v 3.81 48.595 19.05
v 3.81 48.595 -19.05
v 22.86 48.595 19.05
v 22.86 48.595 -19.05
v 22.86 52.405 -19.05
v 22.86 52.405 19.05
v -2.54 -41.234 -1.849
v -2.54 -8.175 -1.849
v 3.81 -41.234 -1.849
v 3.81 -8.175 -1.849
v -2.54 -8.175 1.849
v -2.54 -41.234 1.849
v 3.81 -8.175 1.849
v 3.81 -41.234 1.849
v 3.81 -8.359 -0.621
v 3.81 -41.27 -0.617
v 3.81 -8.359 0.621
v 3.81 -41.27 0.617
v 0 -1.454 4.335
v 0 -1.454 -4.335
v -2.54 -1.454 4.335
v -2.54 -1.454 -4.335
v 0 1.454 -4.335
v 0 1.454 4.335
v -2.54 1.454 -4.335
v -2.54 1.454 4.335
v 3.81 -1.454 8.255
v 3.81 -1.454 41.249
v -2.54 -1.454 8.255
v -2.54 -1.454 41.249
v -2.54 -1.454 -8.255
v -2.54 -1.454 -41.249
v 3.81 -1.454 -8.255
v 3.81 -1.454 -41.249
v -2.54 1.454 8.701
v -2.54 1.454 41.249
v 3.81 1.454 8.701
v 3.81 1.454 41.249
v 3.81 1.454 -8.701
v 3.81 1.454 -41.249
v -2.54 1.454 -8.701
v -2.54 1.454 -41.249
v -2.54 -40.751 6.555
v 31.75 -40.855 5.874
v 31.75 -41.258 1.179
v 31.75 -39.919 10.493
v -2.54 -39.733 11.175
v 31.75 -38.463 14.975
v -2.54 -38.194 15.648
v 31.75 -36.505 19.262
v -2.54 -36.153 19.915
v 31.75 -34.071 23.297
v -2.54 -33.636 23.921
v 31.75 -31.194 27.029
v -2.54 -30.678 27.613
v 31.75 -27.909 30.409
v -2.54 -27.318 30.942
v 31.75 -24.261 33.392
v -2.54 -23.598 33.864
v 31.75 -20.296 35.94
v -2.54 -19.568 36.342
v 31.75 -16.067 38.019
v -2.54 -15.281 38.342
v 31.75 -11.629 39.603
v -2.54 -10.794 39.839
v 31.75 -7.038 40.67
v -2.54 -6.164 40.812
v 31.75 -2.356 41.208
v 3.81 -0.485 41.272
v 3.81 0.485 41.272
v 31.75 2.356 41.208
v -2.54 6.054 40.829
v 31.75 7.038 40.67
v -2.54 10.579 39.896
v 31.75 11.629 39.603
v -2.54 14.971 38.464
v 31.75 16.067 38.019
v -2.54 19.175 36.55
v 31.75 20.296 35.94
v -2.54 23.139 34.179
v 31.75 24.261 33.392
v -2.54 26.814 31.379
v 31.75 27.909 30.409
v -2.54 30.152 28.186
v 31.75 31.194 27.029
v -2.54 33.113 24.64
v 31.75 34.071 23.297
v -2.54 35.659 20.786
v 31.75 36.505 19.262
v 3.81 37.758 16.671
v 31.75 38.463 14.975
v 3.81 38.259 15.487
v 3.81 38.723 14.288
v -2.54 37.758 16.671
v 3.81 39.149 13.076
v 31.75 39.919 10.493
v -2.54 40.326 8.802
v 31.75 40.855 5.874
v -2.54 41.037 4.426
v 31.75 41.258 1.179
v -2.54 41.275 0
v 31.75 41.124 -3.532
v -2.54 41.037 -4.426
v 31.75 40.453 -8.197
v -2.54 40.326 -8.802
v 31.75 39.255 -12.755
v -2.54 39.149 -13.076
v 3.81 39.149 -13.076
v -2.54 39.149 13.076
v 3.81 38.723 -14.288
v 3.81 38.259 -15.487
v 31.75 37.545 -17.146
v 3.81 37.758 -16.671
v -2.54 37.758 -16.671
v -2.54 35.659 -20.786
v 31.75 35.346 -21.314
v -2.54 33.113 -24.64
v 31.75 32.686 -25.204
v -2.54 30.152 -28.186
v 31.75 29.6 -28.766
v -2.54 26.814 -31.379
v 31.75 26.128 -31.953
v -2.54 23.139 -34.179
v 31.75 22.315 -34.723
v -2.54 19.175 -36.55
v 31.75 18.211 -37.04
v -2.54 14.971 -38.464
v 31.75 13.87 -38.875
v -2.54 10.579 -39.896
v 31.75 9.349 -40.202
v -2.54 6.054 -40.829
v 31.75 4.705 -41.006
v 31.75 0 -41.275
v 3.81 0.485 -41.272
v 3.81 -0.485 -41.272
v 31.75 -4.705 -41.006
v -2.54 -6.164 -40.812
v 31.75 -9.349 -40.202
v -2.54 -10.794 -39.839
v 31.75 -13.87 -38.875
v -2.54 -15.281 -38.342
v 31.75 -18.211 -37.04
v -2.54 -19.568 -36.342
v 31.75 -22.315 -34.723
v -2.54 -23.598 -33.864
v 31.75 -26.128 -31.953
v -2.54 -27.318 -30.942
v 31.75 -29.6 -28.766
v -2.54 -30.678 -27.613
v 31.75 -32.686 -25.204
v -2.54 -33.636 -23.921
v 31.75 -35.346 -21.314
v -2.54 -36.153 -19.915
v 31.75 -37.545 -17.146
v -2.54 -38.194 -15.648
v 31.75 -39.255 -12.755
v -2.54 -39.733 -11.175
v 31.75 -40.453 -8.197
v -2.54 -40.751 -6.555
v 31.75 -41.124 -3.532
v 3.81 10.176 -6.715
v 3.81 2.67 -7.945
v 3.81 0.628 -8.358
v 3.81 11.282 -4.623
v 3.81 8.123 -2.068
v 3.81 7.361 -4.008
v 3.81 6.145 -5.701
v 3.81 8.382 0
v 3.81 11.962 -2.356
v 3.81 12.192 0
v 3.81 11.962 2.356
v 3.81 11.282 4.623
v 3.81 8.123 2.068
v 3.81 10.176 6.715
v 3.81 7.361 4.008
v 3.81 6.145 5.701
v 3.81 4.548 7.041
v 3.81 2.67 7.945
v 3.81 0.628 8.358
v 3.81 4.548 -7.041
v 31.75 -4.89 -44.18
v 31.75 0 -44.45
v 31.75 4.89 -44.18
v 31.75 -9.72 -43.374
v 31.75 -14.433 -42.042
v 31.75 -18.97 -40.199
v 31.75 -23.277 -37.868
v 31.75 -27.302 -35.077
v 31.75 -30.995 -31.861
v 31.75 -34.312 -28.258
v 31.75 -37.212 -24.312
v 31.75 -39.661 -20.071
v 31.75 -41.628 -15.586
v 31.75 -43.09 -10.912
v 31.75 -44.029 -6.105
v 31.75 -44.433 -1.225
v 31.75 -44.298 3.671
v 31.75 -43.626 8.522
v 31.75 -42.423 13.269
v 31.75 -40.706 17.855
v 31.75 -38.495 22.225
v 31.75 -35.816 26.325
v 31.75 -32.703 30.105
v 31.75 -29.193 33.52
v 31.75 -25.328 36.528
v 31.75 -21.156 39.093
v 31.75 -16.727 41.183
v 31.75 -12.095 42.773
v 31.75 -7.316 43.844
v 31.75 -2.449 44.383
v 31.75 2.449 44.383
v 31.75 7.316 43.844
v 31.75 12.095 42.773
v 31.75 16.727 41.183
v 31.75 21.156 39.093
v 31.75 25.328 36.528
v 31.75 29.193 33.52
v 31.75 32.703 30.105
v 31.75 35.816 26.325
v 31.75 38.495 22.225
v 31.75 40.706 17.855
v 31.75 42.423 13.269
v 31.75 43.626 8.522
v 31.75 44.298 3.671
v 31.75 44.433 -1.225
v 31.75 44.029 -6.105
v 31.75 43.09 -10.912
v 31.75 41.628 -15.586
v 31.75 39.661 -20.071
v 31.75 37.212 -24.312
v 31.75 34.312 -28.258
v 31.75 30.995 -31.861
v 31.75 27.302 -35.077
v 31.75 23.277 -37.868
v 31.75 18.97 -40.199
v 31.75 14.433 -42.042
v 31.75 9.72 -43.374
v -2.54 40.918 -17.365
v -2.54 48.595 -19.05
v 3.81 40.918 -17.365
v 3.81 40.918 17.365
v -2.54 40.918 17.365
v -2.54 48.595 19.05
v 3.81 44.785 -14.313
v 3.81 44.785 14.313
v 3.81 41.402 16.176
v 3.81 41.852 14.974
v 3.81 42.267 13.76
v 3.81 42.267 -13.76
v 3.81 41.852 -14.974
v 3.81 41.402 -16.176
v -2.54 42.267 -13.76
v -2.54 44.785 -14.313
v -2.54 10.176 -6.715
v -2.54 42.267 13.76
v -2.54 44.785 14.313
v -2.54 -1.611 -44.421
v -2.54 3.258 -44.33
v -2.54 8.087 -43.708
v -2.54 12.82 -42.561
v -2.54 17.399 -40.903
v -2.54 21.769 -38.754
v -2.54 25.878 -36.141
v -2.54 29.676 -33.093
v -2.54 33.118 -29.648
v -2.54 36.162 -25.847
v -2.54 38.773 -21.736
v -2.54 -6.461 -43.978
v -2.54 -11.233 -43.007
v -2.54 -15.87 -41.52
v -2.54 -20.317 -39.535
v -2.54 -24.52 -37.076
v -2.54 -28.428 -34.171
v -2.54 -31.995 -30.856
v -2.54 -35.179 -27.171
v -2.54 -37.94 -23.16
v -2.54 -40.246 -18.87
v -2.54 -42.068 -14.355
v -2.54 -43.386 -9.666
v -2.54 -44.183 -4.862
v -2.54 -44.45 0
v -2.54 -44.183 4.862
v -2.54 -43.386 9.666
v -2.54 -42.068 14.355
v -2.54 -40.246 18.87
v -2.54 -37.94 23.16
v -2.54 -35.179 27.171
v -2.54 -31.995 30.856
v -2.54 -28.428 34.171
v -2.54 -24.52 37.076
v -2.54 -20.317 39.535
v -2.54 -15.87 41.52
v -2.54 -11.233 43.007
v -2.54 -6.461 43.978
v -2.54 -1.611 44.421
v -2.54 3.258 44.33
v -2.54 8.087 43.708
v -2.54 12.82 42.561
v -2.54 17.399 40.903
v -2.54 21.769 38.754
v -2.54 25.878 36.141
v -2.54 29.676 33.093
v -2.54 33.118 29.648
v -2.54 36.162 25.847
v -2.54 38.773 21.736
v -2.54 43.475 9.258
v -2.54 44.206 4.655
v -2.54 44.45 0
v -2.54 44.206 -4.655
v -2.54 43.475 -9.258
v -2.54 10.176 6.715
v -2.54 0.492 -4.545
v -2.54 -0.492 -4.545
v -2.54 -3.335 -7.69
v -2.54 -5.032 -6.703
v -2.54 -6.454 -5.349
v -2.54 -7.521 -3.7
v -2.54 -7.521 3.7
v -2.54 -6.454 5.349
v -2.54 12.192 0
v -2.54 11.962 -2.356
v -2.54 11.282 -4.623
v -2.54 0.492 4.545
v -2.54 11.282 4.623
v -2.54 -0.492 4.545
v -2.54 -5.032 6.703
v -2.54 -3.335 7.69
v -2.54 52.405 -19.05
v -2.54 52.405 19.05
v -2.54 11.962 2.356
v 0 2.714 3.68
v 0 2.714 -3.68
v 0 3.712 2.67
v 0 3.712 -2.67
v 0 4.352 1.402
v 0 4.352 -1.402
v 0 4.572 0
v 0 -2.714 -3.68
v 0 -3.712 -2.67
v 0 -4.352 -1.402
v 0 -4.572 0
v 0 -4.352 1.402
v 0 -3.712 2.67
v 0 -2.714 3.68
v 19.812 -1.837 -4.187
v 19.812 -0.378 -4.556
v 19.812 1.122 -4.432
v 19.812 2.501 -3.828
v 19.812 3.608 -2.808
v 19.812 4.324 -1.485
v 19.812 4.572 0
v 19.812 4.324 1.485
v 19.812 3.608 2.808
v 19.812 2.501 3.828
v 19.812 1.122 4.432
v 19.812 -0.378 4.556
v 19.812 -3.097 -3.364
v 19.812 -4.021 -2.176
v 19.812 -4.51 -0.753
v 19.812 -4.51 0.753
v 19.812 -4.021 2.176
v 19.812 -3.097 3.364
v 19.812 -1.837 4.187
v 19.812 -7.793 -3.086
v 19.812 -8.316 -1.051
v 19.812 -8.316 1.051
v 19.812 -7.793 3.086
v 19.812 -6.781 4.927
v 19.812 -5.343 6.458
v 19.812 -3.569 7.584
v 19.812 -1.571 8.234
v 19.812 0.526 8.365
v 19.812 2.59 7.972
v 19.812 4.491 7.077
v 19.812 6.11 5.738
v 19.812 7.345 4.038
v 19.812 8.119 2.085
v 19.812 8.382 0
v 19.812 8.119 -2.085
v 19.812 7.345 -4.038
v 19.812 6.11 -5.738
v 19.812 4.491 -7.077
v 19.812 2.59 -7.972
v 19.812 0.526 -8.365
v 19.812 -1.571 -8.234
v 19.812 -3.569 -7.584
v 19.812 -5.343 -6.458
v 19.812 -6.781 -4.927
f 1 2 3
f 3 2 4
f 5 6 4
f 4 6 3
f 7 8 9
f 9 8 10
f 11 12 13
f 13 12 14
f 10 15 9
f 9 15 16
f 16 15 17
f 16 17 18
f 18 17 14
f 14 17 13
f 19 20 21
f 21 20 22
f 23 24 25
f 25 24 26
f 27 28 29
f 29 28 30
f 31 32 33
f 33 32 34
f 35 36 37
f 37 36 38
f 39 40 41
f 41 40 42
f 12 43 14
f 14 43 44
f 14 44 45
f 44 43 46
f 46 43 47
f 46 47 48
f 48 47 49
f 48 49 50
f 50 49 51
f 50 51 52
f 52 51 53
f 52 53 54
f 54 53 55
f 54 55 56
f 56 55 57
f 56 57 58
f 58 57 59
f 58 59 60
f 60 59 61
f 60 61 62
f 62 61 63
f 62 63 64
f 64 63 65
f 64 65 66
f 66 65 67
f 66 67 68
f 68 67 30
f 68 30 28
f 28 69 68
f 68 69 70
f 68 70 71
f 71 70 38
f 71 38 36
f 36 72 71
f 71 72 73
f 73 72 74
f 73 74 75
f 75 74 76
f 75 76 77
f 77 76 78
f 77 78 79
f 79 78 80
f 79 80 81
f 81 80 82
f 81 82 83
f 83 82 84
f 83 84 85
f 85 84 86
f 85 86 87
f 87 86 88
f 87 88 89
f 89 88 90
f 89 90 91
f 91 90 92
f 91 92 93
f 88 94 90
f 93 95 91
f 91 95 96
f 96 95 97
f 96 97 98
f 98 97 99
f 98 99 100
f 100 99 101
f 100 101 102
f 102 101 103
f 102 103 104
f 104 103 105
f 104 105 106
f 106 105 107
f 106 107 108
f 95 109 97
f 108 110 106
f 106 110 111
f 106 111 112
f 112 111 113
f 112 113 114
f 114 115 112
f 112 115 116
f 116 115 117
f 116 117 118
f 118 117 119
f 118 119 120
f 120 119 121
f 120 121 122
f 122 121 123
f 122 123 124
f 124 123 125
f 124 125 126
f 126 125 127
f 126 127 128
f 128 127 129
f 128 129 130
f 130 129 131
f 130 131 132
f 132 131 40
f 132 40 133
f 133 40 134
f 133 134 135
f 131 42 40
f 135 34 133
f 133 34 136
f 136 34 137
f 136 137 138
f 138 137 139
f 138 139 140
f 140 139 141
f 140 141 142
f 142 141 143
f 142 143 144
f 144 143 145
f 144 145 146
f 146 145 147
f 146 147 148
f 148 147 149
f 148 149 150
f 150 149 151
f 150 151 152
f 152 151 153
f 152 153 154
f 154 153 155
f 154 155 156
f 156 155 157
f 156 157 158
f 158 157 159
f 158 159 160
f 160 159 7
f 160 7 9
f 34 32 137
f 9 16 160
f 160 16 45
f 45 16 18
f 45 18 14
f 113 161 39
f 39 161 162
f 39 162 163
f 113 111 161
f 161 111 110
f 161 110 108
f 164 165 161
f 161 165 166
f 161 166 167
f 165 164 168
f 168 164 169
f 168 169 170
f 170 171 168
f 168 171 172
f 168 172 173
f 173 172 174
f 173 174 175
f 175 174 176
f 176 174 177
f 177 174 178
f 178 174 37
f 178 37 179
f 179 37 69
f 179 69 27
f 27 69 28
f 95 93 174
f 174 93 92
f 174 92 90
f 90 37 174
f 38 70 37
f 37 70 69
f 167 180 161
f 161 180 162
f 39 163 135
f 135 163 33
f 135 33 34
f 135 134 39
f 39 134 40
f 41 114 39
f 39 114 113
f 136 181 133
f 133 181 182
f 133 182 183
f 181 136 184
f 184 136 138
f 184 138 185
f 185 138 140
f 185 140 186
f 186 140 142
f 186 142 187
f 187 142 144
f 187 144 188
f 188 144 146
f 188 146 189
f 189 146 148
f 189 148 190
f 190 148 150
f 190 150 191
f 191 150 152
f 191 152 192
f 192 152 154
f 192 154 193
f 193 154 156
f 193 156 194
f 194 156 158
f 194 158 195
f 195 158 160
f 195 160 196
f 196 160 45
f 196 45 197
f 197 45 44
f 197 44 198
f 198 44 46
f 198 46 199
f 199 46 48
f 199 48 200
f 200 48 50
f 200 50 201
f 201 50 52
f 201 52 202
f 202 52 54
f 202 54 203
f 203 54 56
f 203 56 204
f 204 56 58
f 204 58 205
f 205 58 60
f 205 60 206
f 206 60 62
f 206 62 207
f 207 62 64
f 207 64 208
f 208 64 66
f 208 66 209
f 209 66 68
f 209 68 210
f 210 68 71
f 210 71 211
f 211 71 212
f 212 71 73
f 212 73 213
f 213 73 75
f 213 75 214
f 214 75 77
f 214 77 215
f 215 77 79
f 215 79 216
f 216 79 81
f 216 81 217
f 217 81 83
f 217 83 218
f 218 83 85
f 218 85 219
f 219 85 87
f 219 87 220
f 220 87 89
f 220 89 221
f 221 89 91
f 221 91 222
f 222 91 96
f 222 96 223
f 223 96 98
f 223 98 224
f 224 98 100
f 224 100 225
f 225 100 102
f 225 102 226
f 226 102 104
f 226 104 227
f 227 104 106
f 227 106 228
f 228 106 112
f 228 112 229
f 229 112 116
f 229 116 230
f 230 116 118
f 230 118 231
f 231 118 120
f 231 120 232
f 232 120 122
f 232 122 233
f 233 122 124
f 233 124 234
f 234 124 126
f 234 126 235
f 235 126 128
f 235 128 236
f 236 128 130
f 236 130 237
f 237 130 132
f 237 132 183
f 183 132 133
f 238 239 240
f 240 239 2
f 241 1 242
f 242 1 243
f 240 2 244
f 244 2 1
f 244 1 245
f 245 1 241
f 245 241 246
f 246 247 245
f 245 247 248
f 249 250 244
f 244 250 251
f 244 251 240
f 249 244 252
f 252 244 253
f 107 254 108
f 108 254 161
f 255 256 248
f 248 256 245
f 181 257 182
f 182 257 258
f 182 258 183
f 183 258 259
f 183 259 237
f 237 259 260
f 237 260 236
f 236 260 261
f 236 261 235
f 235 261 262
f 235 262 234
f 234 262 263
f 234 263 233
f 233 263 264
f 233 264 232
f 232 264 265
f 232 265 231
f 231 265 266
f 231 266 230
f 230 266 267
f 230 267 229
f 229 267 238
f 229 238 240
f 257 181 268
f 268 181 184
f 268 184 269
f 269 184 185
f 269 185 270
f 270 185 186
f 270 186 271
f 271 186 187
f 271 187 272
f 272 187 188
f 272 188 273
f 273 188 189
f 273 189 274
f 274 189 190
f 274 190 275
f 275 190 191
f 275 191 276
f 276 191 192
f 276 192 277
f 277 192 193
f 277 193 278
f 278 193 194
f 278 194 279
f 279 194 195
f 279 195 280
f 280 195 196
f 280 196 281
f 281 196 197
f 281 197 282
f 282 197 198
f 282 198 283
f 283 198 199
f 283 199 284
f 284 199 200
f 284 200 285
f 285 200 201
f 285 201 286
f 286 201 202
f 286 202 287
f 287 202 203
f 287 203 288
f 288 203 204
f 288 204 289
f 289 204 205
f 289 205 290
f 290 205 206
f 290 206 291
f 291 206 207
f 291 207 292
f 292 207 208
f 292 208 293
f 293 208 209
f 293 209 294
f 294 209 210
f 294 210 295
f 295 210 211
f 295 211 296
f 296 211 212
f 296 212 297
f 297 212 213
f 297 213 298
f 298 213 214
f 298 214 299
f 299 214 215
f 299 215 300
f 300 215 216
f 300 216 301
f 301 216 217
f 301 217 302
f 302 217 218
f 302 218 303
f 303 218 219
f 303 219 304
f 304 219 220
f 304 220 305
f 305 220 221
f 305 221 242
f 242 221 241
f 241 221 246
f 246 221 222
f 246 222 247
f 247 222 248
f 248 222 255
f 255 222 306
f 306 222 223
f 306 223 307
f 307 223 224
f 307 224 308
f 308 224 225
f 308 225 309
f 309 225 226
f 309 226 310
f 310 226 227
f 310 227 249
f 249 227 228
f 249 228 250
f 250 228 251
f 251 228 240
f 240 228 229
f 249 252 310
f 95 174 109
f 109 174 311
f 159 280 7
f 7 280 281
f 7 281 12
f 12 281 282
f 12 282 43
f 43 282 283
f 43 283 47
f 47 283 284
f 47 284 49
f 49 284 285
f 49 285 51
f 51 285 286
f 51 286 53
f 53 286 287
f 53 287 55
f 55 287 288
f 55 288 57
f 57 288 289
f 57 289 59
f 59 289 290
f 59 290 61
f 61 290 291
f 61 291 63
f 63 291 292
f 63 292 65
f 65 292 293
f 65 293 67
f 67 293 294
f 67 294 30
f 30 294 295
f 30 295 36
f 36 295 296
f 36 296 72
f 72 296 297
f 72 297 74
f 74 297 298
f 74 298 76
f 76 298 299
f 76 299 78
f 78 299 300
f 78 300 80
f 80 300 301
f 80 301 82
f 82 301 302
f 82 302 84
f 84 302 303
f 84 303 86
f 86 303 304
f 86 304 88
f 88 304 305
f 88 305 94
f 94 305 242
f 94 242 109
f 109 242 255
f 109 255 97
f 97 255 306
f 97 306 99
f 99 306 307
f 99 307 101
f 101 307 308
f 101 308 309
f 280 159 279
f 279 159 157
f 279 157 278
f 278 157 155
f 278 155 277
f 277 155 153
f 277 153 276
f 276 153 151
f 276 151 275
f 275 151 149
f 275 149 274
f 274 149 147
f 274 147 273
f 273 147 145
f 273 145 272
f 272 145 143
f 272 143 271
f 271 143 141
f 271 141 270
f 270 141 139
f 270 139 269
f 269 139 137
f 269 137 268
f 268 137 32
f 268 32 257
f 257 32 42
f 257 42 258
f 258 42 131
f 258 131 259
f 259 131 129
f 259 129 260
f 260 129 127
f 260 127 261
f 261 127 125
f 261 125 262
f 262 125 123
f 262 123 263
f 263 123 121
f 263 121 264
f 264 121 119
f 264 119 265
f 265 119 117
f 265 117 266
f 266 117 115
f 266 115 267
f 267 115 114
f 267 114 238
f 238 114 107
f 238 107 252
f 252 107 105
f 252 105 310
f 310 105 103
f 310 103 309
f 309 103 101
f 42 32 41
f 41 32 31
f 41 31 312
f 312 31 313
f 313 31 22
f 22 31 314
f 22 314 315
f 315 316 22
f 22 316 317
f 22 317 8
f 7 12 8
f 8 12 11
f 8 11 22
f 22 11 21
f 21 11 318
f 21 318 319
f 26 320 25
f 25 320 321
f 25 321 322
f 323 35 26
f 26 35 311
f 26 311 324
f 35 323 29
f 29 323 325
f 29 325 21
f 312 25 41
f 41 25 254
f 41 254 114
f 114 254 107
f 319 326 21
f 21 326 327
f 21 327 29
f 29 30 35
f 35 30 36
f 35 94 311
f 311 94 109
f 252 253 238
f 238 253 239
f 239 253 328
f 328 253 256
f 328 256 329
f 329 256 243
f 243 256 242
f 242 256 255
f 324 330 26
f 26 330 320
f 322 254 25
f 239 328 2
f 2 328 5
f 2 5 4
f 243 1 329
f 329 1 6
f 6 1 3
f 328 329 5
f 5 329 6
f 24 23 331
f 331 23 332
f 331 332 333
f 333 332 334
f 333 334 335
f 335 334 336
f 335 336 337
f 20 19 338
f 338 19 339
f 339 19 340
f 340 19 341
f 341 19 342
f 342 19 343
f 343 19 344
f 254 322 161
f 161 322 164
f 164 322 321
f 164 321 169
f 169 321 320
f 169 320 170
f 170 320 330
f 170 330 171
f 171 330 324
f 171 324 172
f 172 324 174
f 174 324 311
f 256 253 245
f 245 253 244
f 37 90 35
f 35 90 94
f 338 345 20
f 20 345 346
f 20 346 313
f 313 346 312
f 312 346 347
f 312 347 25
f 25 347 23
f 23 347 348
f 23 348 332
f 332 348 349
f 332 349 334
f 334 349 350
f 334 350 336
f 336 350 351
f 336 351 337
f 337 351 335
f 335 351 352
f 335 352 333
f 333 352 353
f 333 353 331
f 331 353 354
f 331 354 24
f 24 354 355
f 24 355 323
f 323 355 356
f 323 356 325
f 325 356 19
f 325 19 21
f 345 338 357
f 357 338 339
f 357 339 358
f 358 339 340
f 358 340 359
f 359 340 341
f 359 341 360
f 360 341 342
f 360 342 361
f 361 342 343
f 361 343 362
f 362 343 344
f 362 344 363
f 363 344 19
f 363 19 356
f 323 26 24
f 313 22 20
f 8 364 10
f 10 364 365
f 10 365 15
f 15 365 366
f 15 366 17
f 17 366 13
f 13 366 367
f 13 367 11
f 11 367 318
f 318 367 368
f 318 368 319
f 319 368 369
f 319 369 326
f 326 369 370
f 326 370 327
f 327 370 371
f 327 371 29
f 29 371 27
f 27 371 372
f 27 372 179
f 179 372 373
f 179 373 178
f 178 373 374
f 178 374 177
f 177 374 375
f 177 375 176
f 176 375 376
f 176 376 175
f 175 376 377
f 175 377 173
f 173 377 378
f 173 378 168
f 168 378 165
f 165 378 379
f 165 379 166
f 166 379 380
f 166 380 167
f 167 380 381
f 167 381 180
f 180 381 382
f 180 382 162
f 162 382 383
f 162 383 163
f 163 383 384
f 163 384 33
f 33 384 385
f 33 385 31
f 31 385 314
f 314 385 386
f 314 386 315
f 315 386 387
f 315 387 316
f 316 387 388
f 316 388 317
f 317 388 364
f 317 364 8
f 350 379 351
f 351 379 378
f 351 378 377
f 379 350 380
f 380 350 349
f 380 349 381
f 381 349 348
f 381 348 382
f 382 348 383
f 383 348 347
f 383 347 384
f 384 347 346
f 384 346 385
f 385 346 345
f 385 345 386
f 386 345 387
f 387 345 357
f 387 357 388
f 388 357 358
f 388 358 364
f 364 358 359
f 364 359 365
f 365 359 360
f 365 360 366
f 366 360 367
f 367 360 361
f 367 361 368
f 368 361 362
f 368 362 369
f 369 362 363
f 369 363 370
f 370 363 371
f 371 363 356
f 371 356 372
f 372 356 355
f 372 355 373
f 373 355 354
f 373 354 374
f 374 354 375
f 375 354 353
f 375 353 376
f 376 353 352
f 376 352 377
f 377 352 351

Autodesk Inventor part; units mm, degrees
ref_plane "YZ Plane" through (0, 0, 0) normal (1, 0, 0) x (0, 1, 0)
ref_plane "XZ Plane" through (0, 0, 0) normal (0, 1, 0) x (-1, 0, 0)
ref_plane "XY Plane" through (0, 0, 0) normal (0, 0, 1) x (1, 0, 0)
sketch "Sketch1" plane through (0, 0, 0) normal (1, 0, 0) x (0, 1, 0)
  circle A0 centre (0, 0) radius 4.572
  circle A1 centre (0, 0) radius 8.382
  dimension "d0" = 9.144
  dimension "d1" = 3.81
extrude "Extrusion1" add sketch "Sketch1" along normal blind 19.812
sketch "Sketch2" plane through (0, 0, 0) normal (-1, 0, 0) x (0, 0, 1)
  circle A0 centre (0, 0) radius 8.382
  circle A1 centre (0, 0) radius 7.747
  circle A2 centre (0, 0) radius 8.382 projected
  dimension "d42" = 0
extrude "Extrusion2" add sketch "Sketch2" along normal blind 2.54 contours A0 | A1
sketch "Sketch3" plane through (-2.54, 0, 0) normal (-1, 0, 0) x (0, 0, 1)
  line L0 (19.05, 48.5955) -> (-19.05, 48.5955)
  circle A0 centre (0, 0) radius 8.382 projected
  line L1 (8.382, 0) -> (19.05, 48.5955)
  line L2 (-8.382, 0) -> (-19.05, 48.5955)
  arc A1 (8.382, 0) -> (-8.382, 0) centre (0, 0) ccw
  line L3 (-14.3129, 44.7855) -> (14.3129, 44.7855)
  line L4 (14.3129, 44.7855) -> (6.7152, 10.176)
  arc A2 (6.7152, 10.176) -> (-6.7152, 10.176) centre (0, 0) ccw
  line L5 (-6.7152, 10.176) -> (-14.3129, 44.7855)
  dimension "d6" = 38.1
  dimension "d7" = 19.05
  dimension "d8" = 3.81
extrude "Extrusion3" add sketch "Sketch3" against normal blind 6.35 contours L1 A0 L2 L0
sketch "Sketch6" plane through (-2.54, 44.7855, -14.3129) normal (0, -1, 0) x (1, 0, 0)
  line L0 (6.35, 32.4159) -> (26.9875, 32.4159) projected
  line L1 (13.4874, 32.4159) -> (13.4874, 26.0989)
  line L2 (26.9875, 32.4159) -> (26.9875, -3.9117) projected
  point P0 (2.54, 14.3129)
  dimension "d20" = 13.5001
sketch "Sketch10" plane through (0, 0, 0) normal (1, 0, 0) x (0, 0, -1)
  circle A0 centre (0, 0) radius 1.4542
  line L0 (-4.572, 1.4542) -> (4.572, 1.4542)
  line L1 (4.572, 1.4542) -> (4.572, -1.4542)
  line L2 (4.572, -1.4542) -> (-4.572, -1.4542)
  line L3 (-4.572, -1.4542) -> (-4.572, 1.4542)
  circle A1 centre (0, 0) radius 4.572 projected
  dimension "d43" = 0
  dimension "d44" = 0
extrude "Extrusion7" cut sketch "Sketch10" against normal blind 22.225 contours A0 | A0 L0 A1 L2 | A0 L2 A1 L0 | A1 L3 L0 | L0 L1 A1 | A1 L1 L2 | L2 L3 A1
sketch "Sketch13" plane through (-2.54, 48.5955, 19.05) normal (0, 1, 0) x (1, 0, 0)
  line L0 (4.6355, 36.83) -> (1.7145, 36.83)
  line L1 (1.7145, 36.83) -> (1.7145, 33.909)
  line L2 (1.7145, 33.909) -> (4.6355, 33.909)
  line L3 (4.6355, 33.909) -> (4.6355, 36.83)
  line L4 (6.35, 38.1) -> (6.35, 0) projected
  line L5 (0, 38.1) -> (6.35, 38.1) projected
  line L6 (4.6228, 4.191) -> (1.7018, 4.191)
  line L7 (1.7018, 4.191) -> (1.7018, 1.27)
  line L8 (1.7018, 1.27) -> (4.6228, 1.27)
  line L9 (4.6228, 1.27) -> (4.6228, 4.191)
  line L10 (0, 0) -> (6.35, 0) projected
  line L11 (0, 0) -> (0, 38.1) projected
  line L12 (0, 0) -> (6.35, 0) projected
  line L13 (6.35, 38.1) -> (6.35, 0) projected
  line L14 (0, 38.1) -> (6.35, 38.1) projected
  point P0 (2.54, 19.05)
  dimension "d32" = 2.921
  dimension "d33" = 2.921
  dimension "d34" = 1.7145
  dimension "d35" = 1.27
  dimension "d36" = 2.921
  dimension "d37" = 2.921
  dimension "d38" = 1.7272
  dimension "d39" = 1.27
extrude "Extrusion9" add sketch "Sketch13" along normal blind 3.81 contours L3 L2 L1 L0 | L4 L10 L11 L5 | L9 L8 L7 L6
sketch "Sketch14" plane through (0, 0, 0) normal (-1, 0, 0) x (0, 0, 1)
  arc A0 (4.3346, -1.4542) -> (4.572, 0) centre (0, 0) ccw projected
  line L0 (4.3346, -1.4542) -> (4.572, -1.4542) projected
  line L1 (4.572, -1.4542) -> (4.572, 0) projected
  arc A1 (4.572, 0) -> (4.3346, 1.4542) centre (0, 0) ccw projected
  line L2 (4.572, 0) -> (4.572, 1.4542) projected
  line L3 (4.572, 1.4542) -> (4.3346, 1.4542) projected
  arc A2 (-4.572, 0) -> (-4.3346, -1.4542) centre (0, 0) ccw projected
  line L4 (-4.572, 0) -> (-4.572, -1.4542) projected
  line L5 (-4.572, -1.4542) -> (-4.3346, -1.4542) projected
  arc A3 (-4.3346, 1.4542) -> (-4.572, 0) centre (0, 0) ccw projected
  line L6 (-4.3346, 1.4542) -> (-4.572, 1.4542) projected
  line L7 (-4.572, 1.4542) -> (-4.572, 0) projected
extrude "Extrusion10" add sketch "Sketch14" along normal blind 2.54
sketch "Sketch15" plane through (-2.54, 0, 0) normal (-1, 0, 0) x (0, 0, 1)
  circle A0 centre (0, 0) radius 41.275
  circle A1 centre (0, 0) radius 44.45
  dimension "d47" = 82.55
  dimension "d48" = 88.9
extrude "Extrusion11" add sketch "Sketch15" against normal blind 2.54
sketch "Sketch16" plane through (0, 0, 0) normal (1, 0, 0) x (0, 0, -1)
  circle A0 centre (0, 0) radius 44.45
  circle A1 centre (0, 0) radius 41.275
  dimension "d51" = 82.55
extrude "Extrusion12" add sketch "Sketch16" along normal blind 31.75
sketch "Sketch19" plane through (-2.54, 0, 0) normal (-1, 0, 0) x (0, 0, 1)
  line L0 (4.3346, 1.4542) -> (-4.3346, 1.4542) projected
  arc A0 (-16.671, 37.7585) -> (16.671, 37.7585) centre (0, 0) ccw projected
  line L1 (-4.3346, 1.4542) -> (-41.2494, 1.4542)
  line L2 (4.3346, 1.4542) -> (41.2494, 1.4542)
  circle A1 centre (0, 0) radius 8.382
  line L3 (-4.3346, -1.4542) -> (4.3346, -1.4542)
  line L4 (4.3346, 1.4542) -> (-4.3346, 1.4542)
  line L5 (-41.2494, -1.4542) -> (41.2494, -1.4542)
extrude "Extrusion14" add sketch "Sketch19" against normal blind 6.35 contours L2 A1 L5 L3 L1 L0 | L2 A0 L5 A1 | A1 L5 A0 L1
sketch "Sketch20" plane through (3.81, 0, 0) normal (1, 0, 0) x (0, 0, -1)
  arc A0 (4.3346, -1.4542) -> (4.3346, 1.4542) centre (0, 0) ccw projected
  line L0 (4.3346, 1.4542) -> (-4.3346, 1.4542) projected
  arc A1 (-4.3346, 1.4542) -> (-4.3346, -1.4542) centre (0, 0) ccw projected
  line L1 (-4.3346, -1.4542) -> (4.3346, -1.4542) projected
extrude "Extrusion15" cut sketch "Sketch20" against normal blind 6.35
sketch "Sketch21" plane through (-2.54, 0, 0) normal (-1, 0, 0) x (0, 0, 1)
  arc A0 (-8.2549, -1.4542) -> (8.2549, -1.4542) centre (0, 0) ccw projected
  line L0 (1.8492, -8.1755) -> (1.8492, -41.2336)
  arc A1 (-41.2494, -1.4542) -> (41.2494, -1.4542) centre (0, 0) ccw projected
  line L1 (-1.8492, -41.2336) -> (-1.8492, -8.1755)
  arc A2 (-1.8492, -8.1755) -> (1.8492, -8.1755) centre (0, 0) ccw
  arc A3 (-1.8492, -41.2336) -> (1.8492, -41.2336) centre (0, 0) ccw
extrude "Extrusion16" add sketch "Sketch21" against normal blind 6.35
sketch "Sketch23" plane through (3.81, 0, 0) normal (1, 0, 0) x (0, 0, -1)
  line L0 (19.05, 52.4055) -> (-19.05, 52.4055) projected
  line L1 (-19.05, 48.5955) -> (-19.05, 52.4055) projected
  line L2 (19.05, 52.4055) -> (-19.05, 52.4055)
  line L3 (-19.05, 52.4055) -> (-19.05, 48.5955)
  line L4 (-19.05, 48.5955) -> (19.05, 48.5955)
  line L5 (19.05, 48.5955) -> (19.05, 52.4055)
  point P0 (0, 0)
extrude "Extrusion17" add sketch "Sketch23" along normal blind 19.05
properties part number "BasicThrustMotorHousing"
